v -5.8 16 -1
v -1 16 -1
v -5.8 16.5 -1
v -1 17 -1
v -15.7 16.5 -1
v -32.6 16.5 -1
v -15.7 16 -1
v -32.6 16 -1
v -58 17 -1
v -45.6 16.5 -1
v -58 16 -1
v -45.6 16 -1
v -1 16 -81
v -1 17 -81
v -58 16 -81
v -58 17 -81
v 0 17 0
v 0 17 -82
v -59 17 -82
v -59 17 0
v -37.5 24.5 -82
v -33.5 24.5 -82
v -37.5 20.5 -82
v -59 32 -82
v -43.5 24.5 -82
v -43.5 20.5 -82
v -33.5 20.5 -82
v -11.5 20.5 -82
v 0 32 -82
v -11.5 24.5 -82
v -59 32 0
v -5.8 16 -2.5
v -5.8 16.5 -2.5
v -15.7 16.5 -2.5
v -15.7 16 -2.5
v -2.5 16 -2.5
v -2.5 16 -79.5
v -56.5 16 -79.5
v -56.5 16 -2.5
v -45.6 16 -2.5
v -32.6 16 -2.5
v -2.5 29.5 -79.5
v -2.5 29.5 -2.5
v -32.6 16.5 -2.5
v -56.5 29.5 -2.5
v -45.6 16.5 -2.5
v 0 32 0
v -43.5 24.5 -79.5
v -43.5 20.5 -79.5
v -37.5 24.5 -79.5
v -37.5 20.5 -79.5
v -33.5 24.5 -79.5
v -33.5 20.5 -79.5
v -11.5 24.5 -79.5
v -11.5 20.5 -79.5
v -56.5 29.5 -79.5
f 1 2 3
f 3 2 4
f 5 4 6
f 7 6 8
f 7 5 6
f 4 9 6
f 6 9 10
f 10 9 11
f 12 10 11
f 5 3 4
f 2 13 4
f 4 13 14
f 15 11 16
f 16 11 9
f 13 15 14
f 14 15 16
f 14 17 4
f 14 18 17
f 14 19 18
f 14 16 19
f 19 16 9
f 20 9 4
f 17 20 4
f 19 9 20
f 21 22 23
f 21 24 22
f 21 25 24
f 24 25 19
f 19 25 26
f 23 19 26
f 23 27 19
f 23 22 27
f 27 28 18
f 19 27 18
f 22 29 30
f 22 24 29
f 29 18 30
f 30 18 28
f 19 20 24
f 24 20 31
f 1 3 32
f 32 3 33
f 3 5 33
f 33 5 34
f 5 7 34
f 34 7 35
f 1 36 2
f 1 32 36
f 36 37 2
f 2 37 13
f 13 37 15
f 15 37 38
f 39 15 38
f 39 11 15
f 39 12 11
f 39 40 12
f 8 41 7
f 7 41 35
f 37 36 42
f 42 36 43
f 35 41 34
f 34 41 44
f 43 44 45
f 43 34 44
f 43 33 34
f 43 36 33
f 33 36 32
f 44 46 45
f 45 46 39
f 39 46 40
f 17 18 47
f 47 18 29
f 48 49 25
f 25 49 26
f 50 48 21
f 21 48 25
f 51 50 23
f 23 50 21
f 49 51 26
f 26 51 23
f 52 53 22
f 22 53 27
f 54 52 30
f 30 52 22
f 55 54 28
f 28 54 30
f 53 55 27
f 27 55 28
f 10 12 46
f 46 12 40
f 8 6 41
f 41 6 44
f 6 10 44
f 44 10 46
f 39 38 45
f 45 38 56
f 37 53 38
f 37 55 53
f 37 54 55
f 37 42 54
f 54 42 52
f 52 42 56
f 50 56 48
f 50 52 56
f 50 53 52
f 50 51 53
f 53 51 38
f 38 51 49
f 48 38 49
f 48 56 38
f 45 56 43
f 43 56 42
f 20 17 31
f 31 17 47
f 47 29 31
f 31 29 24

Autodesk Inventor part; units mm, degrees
ref_plane "YZ Plane" through (0, 0, 0) normal (1, 0, 0) x (0, 1, 0)
ref_plane "XZ Plane" through (0, 0, 0) normal (0, 1, 0) x (-1, 0, 0)
sketch "Sketch1" plane through (0, 0, 0) normal (0, 1, 0) x (-1, 0, 0)
  line L0 (0, 0) -> (59, 0)
  line L1 (59, 0) -> (59, -82)
  line L2 (59, -82) -> (0, -82)
  line L3 (0, -82) -> (0, 0)
  dimension "d0" = 82
  dimension "d1" = 59
extrude "Extrusion1" add sketch "Sketch1" along normal blind 32
ref_plane "Work Plane1" through (0, 2.5, 0) normal (0, -1, 0) x (1, 0, 0)
sketch "Sketch2" plane through (0, 2.5, 0) normal (0, -1, 0) x (1, 0, 0)
  line L0 (-2.5, -2.5) -> (-56.5, -2.5)
  line L1 (-56.5, -2.5) -> (-56.5, -79.5)
  line L2 (-56.5, -79.5) -> (-2.5, -79.5)
  line L3 (-2.5, -79.5) -> (-2.5, -2.5)
  line L4 (0, 0) -> (0, -82) projected
  line L5 (-59, 0) -> (0, 0) projected
  line L6 (-59, -82) -> (-59, 0) projected
  line L7 (0, -82) -> (-59, -82) projected
  dimension "d5" = 2.5
  dimension "d6" = 2.5
  dimension "d7" = 2.5
  dimension "d8" = 2.5
extrude "Extrusion2" cut sketch "Sketch2" against normal blind 27 contours L3 L2 L1 L0
sketch "Sketch3" plane through (0, 2.5, 0) normal (0, -1, 0) x (1, 0, 0)
  line L0 (-3, -3) -> (-56, -3) construction
  line L1 (-56, -3) -> (-56, -79) construction
  line L2 (-56, -79) -> (-3, -79) construction
  line L3 (-3, -79) -> (-3, -3) construction
  line L4 (-2.5, -2.5) -> (-2.5, -79.5) projected
  line L5 (-56.5, -2.5) -> (-2.5, -2.5) projected
  line L6 (-56.5, -79.5) -> (-56.5, -2.5) projected
  line L7 (-2.5, -79.5) -> (-56.5, -79.5) projected
  circle A0 centre (-53.8, -24.59) radius 1.65
  circle A1 centre (-5.54, -23.32) radius 1.65
  circle A2 centre (-38.56, -75.39) radius 1.65
  circle A3 centre (-10.62, -75.39) radius 1.65
  point P0 (0, 0)
  dimension "d11" = 0.5
  dimension "d12" = 0.5
  dimension "d13" = 0.5
  dimension "d14" = 0.5
  dimension "d15" = 3.3
  dimension "d16" = 20.32
  dimension "d17" = 2.54
  dimension "d18" = 7.62
  dimension "d19" = 72.39
  dimension "d20" = 21.59
  dimension "d22" = 50.8
  dimension "d23" = 35.56
  dimension "d24" = 72.39
extrude "Extrusion3" cut sketch "Sketch3" along normal blind 27 contours A0 | A1 | A2 | A3
sketch "Sketch4" plane through (-59, 0, 0) normal (0, 0, 1) x (1, 0, 0)
  line L0 (13.4, 5.6) -> (26.4, 5.6)
  line L1 (26.4, 5.6) -> (26.4, 16.5)
  line L2 (26.4, 16.5) -> (13.4, 16.5)
  line L3 (13.4, 16.5) -> (13.4, 5.6)
  line L4 (43.3, 5.6) -> (53.2, 5.6)
  line L5 (53.2, 5.6) -> (53.2, 16.5)
  line L6 (53.2, 16.5) -> (43.3, 16.5)
  line L7 (43.3, 16.5) -> (43.3, 5.6)
  line L8 (56.5, 2.5) -> (2.5, 2.5) projected
  line L9 (2.5, 2.5) -> (2.5, 29.5) projected
  line L10 (56.5, 2.5) -> (56.5, 29.5) projected
  point P0 (59, 0)
  dimension "d27" = 13
  dimension "d28" = 10.9
  dimension "d29" = 9.9
  dimension "d31" = 14
  dimension "d32" = 10.9
  dimension "d33" = 3.3
extrude "Extrusion4" cut sketch "Sketch4" against normal blind 5
sketch "Sketch5" plane through (0, 0, -82) normal (0, 0, -1) x (-1, 0, 0)
  line L0 (11.5, 24.5) -> (33.5, 24.5)
  line L1 (33.5, 24.5) -> (33.5, 20.5)
  line L2 (33.5, 20.5) -> (11.5, 20.5)
  line L3 (11.5, 20.5) -> (11.5, 24.5)
  line L4 (37.5, 24.5) -> (43.5, 24.5)
  line L5 (43.5, 24.5) -> (43.5, 20.5)
  line L6 (43.5, 20.5) -> (37.5, 20.5)
  line L7 (37.5, 20.5) -> (37.5, 24.5)
  line L8 (56.5, 2.5) -> (2.5, 2.5) projected
  line L9 (2.5, 2.5) -> (2.5, 29.5) projected
  point P0 (0, 0)
  dimension "d36" = 22
  dimension "d37" = 4
  dimension "d38" = 4
  dimension "d39" = 22
  dimension "d40" = 9
  dimension "d41" = 6
  dimension "d42" = 4
extrude "Extrusion5" cut sketch "Sketch5" against normal blind 5
sketch "Sketch6" plane through (-59, 0, -82) normal (-1, 0, 0) x (0, 0, 1)
  circle A0 centre (57.41, 6) radius 1.6
  line L0 (79.5, 2.5) -> (79.5, 29.5) projected
  line L1 (82, 0) -> (0, 0) projected
  dimension "d45" = 3.2
  dimension "d46" = 22.09
  dimension "d47" = 6
sketch "Sketch7" plane through (0, 0, 0) normal (1, 0, 0) x (0, 0, -1)
  circle A0 centre (23.32, 6) radius 1.6
  line L0 (82, 0) -> (0, 0) projected
  line L1 (2.5, 2.5) -> (2.5, 29.5) projected
  dimension "d48" = 6
  dimension "d49" = 20.82
  dimension "d50" = 3.2
sketch "Sketch8" plane through (0, 0, -82) normal (0, 0, -1) x (-1, 0, 0)
  circle A0 centre (10.62, 6) radius 1.6
  circle A1 centre (38.56, 6) radius 1.6
  line L0 (59, 0) -> (0, 0) projected
  line L1 (2.5, 2.5) -> (2.5, 29.5) projected
  dimension "d51" = 3.2
  dimension "d52" = 3.2
  dimension "d53" = 6
  dimension "d54" = 6
  dimension "d55" = 8.12
  dimension "d56" = 36.06
extrude "Extrusion6" cut sketch "Sketch6" against normal blind 5
extrude "Extrusion7" cut sketch "Sketch7" against normal blind 5
extrude "Extrusion8" cut sketch "Sketch8" against normal blind 5
sketch "Sketch9" plane through (-59, 0, 0) normal (0, 0, 1) x (1, 0, 0)
  line L0 (-2.1645, 16) -> (66.4826, 16)
  line L1 (59, 0) -> (0, 0) projected
  dimension "d63" = 16
split body "Split1" sketch "Sketch9" result one side removed curves L0 removed pieces at (-32.4383, 0.5, -41.3152)
sketch "Sketch10" plane through (-59, 16, -82) normal (0, -1, 0) x (1, 0, 0)
  line L0 (0, 82) -> (59, 82) projected
  line L1 (59, 82) -> (59, 0) projected
  line L2 (0, 82) -> (59, 82)
  line L3 (59, 82) -> (59, 0)
  line L4 (59, 0) -> (0, 0)
  line L5 (0, 0) -> (0, 82)
  line L6 (58, 1) -> (1, 1)
  line L7 (1, 1) -> (1, 81)
  line L8 (1, 81) -> (58, 81)
  line L9 (58, 81) -> (58, 1)
  dimension "d64" = 1
  dimension "d65" = 1
  dimension "d66" = 1
  dimension "d67" = 1
extrude "Extrusion9" cut sketch "Sketch10" against normal blind 1
properties part number "Arduino_Box_Upper"
